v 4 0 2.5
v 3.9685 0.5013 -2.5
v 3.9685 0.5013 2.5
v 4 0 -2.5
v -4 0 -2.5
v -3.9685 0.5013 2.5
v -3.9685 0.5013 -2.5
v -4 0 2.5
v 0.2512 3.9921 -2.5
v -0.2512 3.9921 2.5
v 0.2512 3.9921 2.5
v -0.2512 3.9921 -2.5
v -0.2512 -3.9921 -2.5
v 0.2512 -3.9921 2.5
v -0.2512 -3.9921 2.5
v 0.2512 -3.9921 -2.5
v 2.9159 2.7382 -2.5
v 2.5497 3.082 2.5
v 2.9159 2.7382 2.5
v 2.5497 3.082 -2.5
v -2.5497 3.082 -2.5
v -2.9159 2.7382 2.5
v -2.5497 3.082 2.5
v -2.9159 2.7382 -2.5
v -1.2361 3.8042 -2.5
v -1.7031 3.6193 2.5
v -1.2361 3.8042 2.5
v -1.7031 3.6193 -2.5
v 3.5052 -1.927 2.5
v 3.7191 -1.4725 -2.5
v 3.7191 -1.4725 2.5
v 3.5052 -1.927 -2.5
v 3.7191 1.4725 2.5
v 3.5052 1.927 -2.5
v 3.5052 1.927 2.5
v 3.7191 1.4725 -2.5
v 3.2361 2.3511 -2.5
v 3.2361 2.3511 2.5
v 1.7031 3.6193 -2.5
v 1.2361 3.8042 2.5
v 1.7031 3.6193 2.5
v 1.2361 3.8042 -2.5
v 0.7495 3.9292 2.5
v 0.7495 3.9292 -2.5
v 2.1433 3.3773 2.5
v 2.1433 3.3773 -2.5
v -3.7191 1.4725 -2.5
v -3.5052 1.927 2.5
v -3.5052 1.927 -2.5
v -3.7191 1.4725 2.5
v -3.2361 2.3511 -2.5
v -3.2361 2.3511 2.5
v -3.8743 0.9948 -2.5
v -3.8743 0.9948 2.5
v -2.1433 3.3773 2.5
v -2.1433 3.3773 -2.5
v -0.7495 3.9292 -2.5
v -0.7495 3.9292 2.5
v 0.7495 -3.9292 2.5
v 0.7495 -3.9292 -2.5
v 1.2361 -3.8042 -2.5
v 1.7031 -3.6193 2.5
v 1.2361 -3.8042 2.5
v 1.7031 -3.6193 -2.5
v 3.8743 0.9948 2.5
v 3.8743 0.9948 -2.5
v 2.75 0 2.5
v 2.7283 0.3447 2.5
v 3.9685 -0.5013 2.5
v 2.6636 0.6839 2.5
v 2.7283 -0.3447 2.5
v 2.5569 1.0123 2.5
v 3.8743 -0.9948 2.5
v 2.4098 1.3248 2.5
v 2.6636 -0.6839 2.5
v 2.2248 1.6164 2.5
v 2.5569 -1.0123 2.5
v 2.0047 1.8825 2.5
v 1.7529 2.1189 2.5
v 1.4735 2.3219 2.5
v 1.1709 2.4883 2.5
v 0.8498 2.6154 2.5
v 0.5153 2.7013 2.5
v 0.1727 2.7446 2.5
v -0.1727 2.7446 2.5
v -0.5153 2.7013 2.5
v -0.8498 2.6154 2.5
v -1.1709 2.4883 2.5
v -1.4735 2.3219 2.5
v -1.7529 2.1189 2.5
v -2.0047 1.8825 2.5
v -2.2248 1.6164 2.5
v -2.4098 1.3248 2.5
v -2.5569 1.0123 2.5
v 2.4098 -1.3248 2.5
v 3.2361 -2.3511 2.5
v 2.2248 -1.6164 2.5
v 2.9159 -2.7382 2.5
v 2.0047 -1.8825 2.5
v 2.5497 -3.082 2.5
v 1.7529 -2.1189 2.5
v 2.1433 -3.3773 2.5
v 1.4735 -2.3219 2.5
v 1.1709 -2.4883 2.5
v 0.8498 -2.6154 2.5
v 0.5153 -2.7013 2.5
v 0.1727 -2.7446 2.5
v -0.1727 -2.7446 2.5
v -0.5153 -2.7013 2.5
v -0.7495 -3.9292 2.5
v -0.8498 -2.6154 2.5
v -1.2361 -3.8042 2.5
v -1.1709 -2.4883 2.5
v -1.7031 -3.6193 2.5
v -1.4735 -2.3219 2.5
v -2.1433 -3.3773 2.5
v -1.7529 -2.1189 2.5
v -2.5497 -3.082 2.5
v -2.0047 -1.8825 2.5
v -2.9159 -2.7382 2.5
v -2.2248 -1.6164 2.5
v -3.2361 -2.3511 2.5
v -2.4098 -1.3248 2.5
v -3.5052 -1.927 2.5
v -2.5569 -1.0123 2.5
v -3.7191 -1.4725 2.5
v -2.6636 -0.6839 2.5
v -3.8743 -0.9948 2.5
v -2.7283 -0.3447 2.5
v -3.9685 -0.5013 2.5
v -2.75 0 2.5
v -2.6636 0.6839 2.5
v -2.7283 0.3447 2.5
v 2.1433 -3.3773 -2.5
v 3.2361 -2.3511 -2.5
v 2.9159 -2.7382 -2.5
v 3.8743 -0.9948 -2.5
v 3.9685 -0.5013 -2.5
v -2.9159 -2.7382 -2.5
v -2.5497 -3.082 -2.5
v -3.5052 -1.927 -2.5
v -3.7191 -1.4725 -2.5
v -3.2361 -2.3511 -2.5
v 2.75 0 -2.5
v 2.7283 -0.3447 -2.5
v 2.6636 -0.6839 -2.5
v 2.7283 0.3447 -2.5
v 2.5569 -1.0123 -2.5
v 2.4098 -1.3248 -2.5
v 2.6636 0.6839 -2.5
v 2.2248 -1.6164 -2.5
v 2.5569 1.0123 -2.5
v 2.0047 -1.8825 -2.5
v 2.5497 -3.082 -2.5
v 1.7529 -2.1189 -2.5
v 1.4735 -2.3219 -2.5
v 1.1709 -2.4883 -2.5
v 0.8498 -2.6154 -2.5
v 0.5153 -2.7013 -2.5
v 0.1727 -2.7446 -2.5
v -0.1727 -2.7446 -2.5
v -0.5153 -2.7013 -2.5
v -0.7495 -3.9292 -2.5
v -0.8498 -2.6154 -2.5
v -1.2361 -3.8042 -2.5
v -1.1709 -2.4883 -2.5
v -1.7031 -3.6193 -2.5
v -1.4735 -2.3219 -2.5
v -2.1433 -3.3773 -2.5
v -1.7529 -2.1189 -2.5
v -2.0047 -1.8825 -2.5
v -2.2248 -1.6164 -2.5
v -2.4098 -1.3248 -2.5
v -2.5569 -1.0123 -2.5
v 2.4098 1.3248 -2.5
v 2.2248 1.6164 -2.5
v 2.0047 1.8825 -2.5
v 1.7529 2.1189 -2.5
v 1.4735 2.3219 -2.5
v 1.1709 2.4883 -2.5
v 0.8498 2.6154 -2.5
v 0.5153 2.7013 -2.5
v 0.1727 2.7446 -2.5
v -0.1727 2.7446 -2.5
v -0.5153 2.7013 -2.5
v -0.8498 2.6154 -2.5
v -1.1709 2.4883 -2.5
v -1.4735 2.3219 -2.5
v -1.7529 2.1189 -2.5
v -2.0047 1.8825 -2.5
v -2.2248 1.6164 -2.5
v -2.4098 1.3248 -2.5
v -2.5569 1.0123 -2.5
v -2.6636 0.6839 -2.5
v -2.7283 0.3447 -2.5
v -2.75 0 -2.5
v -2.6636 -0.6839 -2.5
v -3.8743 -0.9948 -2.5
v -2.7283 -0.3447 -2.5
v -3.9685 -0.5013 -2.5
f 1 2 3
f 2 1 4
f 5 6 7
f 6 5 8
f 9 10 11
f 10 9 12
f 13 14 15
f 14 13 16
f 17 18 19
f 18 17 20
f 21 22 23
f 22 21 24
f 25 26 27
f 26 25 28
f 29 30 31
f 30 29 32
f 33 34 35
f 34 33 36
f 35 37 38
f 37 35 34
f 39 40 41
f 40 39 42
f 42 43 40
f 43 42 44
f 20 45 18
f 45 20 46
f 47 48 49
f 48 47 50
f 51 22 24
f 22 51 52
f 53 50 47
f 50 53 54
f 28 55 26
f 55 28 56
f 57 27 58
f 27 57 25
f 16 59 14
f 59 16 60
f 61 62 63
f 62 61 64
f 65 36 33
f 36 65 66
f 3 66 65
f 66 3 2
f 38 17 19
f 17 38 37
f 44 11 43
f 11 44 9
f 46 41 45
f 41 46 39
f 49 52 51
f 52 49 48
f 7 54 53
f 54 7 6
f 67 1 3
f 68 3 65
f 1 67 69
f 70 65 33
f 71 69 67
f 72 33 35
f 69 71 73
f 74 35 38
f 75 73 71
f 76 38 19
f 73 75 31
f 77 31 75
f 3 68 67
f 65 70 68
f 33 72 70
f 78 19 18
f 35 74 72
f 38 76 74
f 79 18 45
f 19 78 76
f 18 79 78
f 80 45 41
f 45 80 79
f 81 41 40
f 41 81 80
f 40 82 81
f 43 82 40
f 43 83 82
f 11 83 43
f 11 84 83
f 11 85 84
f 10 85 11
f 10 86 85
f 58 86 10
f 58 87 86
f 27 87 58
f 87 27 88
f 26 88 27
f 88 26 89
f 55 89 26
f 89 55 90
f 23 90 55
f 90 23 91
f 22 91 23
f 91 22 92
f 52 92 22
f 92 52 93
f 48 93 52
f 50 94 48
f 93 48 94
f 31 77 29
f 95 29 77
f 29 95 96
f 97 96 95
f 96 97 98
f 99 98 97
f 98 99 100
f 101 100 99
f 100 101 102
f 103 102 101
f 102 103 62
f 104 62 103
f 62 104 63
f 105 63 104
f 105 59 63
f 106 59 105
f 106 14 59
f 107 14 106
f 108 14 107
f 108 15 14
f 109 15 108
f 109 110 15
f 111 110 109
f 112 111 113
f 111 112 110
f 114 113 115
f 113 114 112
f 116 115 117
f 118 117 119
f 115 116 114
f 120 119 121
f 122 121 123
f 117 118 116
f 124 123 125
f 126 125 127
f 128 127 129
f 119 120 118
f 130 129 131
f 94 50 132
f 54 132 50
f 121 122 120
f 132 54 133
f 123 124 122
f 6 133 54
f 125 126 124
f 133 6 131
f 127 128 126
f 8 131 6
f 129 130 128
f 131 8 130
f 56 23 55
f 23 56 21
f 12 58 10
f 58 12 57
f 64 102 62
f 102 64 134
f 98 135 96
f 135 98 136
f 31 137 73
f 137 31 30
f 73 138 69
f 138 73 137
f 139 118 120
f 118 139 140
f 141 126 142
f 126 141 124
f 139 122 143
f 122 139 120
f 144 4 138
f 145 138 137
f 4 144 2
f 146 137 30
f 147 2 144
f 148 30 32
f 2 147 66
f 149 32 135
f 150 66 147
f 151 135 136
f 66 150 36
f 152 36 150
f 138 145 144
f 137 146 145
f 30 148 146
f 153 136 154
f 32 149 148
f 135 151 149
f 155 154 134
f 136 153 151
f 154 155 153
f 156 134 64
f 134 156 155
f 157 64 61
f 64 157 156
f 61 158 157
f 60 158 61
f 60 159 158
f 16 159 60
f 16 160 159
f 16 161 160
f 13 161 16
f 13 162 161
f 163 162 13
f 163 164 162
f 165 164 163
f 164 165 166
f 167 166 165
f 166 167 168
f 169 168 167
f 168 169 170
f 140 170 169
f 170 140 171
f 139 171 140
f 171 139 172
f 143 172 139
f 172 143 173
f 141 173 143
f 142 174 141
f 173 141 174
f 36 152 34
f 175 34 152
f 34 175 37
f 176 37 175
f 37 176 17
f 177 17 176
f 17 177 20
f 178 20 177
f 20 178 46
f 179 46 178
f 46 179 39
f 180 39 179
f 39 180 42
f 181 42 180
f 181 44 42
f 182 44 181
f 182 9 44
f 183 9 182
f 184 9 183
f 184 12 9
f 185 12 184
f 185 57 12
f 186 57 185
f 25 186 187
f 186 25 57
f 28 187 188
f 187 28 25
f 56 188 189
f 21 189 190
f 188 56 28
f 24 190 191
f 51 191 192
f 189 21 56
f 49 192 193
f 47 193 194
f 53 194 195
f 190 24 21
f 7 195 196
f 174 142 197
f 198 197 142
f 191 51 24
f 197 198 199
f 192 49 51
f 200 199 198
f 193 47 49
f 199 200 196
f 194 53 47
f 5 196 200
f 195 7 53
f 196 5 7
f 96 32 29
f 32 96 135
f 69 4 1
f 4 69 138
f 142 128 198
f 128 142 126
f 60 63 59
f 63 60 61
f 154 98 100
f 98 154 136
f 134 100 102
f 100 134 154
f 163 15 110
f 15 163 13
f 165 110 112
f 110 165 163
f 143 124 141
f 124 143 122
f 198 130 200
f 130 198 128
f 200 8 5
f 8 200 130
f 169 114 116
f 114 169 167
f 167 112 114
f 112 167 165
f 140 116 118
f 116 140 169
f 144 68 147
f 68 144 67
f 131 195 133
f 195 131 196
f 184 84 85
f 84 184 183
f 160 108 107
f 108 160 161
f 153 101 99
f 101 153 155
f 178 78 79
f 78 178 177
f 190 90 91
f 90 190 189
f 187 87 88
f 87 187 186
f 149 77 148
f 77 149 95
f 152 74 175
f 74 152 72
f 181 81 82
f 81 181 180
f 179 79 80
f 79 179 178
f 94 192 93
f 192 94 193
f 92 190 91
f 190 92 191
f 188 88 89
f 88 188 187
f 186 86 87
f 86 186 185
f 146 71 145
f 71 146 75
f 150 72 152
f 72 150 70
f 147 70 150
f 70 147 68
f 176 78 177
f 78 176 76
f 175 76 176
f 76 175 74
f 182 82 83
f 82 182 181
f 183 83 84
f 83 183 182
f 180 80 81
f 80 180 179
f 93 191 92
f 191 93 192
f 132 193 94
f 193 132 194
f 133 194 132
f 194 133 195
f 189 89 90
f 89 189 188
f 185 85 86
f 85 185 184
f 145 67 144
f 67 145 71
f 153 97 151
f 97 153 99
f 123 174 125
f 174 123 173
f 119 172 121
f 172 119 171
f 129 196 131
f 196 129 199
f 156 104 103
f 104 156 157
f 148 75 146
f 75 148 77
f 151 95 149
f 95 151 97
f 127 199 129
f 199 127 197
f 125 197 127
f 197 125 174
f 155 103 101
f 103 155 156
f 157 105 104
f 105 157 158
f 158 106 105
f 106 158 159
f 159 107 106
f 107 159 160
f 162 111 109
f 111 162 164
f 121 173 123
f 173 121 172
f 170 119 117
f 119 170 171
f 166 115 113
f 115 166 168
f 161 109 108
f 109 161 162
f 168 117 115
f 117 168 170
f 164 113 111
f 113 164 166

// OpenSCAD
$fn = 50;


difference() {
	union() {
		translate(v = [0, 0, -2.5000000000]) {
			cylinder(h = 5, r = 4.0000000000);
		}
	}
	union() {
		translate(v = [0, 0, -100.0000000000]) {
			cylinder(h = 200, r = 2.7500000000);
		}
	}
}
